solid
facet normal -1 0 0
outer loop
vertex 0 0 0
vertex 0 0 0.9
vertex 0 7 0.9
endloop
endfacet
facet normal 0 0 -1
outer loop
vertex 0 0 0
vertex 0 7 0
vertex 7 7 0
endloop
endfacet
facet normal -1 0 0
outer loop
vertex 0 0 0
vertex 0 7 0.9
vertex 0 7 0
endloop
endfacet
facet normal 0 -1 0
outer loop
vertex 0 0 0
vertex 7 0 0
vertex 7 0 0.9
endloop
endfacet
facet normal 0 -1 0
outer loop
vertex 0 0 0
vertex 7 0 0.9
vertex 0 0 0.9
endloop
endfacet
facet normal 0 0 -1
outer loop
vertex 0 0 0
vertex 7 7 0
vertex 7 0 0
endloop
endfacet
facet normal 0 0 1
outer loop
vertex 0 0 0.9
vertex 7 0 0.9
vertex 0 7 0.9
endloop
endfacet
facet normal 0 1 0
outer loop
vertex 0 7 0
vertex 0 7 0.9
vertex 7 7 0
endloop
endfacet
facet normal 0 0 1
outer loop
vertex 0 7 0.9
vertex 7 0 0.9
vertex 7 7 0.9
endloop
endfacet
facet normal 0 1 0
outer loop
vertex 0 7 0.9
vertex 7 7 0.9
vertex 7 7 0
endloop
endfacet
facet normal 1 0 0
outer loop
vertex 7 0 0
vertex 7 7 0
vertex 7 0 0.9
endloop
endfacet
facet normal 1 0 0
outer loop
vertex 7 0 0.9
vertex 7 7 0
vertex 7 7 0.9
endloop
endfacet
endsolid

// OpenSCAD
/* Warning, this is a very basic generator with a lot of approximation 
input data : [VQFN, U5B, 7x7x0.9mm, 48, , A, C04-21493A]
generated by com.zoubworld.electronics.cad.model3d.Basic
Date : Sun Feb 15 10:50:49 CET 2026
*/

//body
color("black")
translate([0,0,0])
cube([7.0,7.0,0.9], center=false);
